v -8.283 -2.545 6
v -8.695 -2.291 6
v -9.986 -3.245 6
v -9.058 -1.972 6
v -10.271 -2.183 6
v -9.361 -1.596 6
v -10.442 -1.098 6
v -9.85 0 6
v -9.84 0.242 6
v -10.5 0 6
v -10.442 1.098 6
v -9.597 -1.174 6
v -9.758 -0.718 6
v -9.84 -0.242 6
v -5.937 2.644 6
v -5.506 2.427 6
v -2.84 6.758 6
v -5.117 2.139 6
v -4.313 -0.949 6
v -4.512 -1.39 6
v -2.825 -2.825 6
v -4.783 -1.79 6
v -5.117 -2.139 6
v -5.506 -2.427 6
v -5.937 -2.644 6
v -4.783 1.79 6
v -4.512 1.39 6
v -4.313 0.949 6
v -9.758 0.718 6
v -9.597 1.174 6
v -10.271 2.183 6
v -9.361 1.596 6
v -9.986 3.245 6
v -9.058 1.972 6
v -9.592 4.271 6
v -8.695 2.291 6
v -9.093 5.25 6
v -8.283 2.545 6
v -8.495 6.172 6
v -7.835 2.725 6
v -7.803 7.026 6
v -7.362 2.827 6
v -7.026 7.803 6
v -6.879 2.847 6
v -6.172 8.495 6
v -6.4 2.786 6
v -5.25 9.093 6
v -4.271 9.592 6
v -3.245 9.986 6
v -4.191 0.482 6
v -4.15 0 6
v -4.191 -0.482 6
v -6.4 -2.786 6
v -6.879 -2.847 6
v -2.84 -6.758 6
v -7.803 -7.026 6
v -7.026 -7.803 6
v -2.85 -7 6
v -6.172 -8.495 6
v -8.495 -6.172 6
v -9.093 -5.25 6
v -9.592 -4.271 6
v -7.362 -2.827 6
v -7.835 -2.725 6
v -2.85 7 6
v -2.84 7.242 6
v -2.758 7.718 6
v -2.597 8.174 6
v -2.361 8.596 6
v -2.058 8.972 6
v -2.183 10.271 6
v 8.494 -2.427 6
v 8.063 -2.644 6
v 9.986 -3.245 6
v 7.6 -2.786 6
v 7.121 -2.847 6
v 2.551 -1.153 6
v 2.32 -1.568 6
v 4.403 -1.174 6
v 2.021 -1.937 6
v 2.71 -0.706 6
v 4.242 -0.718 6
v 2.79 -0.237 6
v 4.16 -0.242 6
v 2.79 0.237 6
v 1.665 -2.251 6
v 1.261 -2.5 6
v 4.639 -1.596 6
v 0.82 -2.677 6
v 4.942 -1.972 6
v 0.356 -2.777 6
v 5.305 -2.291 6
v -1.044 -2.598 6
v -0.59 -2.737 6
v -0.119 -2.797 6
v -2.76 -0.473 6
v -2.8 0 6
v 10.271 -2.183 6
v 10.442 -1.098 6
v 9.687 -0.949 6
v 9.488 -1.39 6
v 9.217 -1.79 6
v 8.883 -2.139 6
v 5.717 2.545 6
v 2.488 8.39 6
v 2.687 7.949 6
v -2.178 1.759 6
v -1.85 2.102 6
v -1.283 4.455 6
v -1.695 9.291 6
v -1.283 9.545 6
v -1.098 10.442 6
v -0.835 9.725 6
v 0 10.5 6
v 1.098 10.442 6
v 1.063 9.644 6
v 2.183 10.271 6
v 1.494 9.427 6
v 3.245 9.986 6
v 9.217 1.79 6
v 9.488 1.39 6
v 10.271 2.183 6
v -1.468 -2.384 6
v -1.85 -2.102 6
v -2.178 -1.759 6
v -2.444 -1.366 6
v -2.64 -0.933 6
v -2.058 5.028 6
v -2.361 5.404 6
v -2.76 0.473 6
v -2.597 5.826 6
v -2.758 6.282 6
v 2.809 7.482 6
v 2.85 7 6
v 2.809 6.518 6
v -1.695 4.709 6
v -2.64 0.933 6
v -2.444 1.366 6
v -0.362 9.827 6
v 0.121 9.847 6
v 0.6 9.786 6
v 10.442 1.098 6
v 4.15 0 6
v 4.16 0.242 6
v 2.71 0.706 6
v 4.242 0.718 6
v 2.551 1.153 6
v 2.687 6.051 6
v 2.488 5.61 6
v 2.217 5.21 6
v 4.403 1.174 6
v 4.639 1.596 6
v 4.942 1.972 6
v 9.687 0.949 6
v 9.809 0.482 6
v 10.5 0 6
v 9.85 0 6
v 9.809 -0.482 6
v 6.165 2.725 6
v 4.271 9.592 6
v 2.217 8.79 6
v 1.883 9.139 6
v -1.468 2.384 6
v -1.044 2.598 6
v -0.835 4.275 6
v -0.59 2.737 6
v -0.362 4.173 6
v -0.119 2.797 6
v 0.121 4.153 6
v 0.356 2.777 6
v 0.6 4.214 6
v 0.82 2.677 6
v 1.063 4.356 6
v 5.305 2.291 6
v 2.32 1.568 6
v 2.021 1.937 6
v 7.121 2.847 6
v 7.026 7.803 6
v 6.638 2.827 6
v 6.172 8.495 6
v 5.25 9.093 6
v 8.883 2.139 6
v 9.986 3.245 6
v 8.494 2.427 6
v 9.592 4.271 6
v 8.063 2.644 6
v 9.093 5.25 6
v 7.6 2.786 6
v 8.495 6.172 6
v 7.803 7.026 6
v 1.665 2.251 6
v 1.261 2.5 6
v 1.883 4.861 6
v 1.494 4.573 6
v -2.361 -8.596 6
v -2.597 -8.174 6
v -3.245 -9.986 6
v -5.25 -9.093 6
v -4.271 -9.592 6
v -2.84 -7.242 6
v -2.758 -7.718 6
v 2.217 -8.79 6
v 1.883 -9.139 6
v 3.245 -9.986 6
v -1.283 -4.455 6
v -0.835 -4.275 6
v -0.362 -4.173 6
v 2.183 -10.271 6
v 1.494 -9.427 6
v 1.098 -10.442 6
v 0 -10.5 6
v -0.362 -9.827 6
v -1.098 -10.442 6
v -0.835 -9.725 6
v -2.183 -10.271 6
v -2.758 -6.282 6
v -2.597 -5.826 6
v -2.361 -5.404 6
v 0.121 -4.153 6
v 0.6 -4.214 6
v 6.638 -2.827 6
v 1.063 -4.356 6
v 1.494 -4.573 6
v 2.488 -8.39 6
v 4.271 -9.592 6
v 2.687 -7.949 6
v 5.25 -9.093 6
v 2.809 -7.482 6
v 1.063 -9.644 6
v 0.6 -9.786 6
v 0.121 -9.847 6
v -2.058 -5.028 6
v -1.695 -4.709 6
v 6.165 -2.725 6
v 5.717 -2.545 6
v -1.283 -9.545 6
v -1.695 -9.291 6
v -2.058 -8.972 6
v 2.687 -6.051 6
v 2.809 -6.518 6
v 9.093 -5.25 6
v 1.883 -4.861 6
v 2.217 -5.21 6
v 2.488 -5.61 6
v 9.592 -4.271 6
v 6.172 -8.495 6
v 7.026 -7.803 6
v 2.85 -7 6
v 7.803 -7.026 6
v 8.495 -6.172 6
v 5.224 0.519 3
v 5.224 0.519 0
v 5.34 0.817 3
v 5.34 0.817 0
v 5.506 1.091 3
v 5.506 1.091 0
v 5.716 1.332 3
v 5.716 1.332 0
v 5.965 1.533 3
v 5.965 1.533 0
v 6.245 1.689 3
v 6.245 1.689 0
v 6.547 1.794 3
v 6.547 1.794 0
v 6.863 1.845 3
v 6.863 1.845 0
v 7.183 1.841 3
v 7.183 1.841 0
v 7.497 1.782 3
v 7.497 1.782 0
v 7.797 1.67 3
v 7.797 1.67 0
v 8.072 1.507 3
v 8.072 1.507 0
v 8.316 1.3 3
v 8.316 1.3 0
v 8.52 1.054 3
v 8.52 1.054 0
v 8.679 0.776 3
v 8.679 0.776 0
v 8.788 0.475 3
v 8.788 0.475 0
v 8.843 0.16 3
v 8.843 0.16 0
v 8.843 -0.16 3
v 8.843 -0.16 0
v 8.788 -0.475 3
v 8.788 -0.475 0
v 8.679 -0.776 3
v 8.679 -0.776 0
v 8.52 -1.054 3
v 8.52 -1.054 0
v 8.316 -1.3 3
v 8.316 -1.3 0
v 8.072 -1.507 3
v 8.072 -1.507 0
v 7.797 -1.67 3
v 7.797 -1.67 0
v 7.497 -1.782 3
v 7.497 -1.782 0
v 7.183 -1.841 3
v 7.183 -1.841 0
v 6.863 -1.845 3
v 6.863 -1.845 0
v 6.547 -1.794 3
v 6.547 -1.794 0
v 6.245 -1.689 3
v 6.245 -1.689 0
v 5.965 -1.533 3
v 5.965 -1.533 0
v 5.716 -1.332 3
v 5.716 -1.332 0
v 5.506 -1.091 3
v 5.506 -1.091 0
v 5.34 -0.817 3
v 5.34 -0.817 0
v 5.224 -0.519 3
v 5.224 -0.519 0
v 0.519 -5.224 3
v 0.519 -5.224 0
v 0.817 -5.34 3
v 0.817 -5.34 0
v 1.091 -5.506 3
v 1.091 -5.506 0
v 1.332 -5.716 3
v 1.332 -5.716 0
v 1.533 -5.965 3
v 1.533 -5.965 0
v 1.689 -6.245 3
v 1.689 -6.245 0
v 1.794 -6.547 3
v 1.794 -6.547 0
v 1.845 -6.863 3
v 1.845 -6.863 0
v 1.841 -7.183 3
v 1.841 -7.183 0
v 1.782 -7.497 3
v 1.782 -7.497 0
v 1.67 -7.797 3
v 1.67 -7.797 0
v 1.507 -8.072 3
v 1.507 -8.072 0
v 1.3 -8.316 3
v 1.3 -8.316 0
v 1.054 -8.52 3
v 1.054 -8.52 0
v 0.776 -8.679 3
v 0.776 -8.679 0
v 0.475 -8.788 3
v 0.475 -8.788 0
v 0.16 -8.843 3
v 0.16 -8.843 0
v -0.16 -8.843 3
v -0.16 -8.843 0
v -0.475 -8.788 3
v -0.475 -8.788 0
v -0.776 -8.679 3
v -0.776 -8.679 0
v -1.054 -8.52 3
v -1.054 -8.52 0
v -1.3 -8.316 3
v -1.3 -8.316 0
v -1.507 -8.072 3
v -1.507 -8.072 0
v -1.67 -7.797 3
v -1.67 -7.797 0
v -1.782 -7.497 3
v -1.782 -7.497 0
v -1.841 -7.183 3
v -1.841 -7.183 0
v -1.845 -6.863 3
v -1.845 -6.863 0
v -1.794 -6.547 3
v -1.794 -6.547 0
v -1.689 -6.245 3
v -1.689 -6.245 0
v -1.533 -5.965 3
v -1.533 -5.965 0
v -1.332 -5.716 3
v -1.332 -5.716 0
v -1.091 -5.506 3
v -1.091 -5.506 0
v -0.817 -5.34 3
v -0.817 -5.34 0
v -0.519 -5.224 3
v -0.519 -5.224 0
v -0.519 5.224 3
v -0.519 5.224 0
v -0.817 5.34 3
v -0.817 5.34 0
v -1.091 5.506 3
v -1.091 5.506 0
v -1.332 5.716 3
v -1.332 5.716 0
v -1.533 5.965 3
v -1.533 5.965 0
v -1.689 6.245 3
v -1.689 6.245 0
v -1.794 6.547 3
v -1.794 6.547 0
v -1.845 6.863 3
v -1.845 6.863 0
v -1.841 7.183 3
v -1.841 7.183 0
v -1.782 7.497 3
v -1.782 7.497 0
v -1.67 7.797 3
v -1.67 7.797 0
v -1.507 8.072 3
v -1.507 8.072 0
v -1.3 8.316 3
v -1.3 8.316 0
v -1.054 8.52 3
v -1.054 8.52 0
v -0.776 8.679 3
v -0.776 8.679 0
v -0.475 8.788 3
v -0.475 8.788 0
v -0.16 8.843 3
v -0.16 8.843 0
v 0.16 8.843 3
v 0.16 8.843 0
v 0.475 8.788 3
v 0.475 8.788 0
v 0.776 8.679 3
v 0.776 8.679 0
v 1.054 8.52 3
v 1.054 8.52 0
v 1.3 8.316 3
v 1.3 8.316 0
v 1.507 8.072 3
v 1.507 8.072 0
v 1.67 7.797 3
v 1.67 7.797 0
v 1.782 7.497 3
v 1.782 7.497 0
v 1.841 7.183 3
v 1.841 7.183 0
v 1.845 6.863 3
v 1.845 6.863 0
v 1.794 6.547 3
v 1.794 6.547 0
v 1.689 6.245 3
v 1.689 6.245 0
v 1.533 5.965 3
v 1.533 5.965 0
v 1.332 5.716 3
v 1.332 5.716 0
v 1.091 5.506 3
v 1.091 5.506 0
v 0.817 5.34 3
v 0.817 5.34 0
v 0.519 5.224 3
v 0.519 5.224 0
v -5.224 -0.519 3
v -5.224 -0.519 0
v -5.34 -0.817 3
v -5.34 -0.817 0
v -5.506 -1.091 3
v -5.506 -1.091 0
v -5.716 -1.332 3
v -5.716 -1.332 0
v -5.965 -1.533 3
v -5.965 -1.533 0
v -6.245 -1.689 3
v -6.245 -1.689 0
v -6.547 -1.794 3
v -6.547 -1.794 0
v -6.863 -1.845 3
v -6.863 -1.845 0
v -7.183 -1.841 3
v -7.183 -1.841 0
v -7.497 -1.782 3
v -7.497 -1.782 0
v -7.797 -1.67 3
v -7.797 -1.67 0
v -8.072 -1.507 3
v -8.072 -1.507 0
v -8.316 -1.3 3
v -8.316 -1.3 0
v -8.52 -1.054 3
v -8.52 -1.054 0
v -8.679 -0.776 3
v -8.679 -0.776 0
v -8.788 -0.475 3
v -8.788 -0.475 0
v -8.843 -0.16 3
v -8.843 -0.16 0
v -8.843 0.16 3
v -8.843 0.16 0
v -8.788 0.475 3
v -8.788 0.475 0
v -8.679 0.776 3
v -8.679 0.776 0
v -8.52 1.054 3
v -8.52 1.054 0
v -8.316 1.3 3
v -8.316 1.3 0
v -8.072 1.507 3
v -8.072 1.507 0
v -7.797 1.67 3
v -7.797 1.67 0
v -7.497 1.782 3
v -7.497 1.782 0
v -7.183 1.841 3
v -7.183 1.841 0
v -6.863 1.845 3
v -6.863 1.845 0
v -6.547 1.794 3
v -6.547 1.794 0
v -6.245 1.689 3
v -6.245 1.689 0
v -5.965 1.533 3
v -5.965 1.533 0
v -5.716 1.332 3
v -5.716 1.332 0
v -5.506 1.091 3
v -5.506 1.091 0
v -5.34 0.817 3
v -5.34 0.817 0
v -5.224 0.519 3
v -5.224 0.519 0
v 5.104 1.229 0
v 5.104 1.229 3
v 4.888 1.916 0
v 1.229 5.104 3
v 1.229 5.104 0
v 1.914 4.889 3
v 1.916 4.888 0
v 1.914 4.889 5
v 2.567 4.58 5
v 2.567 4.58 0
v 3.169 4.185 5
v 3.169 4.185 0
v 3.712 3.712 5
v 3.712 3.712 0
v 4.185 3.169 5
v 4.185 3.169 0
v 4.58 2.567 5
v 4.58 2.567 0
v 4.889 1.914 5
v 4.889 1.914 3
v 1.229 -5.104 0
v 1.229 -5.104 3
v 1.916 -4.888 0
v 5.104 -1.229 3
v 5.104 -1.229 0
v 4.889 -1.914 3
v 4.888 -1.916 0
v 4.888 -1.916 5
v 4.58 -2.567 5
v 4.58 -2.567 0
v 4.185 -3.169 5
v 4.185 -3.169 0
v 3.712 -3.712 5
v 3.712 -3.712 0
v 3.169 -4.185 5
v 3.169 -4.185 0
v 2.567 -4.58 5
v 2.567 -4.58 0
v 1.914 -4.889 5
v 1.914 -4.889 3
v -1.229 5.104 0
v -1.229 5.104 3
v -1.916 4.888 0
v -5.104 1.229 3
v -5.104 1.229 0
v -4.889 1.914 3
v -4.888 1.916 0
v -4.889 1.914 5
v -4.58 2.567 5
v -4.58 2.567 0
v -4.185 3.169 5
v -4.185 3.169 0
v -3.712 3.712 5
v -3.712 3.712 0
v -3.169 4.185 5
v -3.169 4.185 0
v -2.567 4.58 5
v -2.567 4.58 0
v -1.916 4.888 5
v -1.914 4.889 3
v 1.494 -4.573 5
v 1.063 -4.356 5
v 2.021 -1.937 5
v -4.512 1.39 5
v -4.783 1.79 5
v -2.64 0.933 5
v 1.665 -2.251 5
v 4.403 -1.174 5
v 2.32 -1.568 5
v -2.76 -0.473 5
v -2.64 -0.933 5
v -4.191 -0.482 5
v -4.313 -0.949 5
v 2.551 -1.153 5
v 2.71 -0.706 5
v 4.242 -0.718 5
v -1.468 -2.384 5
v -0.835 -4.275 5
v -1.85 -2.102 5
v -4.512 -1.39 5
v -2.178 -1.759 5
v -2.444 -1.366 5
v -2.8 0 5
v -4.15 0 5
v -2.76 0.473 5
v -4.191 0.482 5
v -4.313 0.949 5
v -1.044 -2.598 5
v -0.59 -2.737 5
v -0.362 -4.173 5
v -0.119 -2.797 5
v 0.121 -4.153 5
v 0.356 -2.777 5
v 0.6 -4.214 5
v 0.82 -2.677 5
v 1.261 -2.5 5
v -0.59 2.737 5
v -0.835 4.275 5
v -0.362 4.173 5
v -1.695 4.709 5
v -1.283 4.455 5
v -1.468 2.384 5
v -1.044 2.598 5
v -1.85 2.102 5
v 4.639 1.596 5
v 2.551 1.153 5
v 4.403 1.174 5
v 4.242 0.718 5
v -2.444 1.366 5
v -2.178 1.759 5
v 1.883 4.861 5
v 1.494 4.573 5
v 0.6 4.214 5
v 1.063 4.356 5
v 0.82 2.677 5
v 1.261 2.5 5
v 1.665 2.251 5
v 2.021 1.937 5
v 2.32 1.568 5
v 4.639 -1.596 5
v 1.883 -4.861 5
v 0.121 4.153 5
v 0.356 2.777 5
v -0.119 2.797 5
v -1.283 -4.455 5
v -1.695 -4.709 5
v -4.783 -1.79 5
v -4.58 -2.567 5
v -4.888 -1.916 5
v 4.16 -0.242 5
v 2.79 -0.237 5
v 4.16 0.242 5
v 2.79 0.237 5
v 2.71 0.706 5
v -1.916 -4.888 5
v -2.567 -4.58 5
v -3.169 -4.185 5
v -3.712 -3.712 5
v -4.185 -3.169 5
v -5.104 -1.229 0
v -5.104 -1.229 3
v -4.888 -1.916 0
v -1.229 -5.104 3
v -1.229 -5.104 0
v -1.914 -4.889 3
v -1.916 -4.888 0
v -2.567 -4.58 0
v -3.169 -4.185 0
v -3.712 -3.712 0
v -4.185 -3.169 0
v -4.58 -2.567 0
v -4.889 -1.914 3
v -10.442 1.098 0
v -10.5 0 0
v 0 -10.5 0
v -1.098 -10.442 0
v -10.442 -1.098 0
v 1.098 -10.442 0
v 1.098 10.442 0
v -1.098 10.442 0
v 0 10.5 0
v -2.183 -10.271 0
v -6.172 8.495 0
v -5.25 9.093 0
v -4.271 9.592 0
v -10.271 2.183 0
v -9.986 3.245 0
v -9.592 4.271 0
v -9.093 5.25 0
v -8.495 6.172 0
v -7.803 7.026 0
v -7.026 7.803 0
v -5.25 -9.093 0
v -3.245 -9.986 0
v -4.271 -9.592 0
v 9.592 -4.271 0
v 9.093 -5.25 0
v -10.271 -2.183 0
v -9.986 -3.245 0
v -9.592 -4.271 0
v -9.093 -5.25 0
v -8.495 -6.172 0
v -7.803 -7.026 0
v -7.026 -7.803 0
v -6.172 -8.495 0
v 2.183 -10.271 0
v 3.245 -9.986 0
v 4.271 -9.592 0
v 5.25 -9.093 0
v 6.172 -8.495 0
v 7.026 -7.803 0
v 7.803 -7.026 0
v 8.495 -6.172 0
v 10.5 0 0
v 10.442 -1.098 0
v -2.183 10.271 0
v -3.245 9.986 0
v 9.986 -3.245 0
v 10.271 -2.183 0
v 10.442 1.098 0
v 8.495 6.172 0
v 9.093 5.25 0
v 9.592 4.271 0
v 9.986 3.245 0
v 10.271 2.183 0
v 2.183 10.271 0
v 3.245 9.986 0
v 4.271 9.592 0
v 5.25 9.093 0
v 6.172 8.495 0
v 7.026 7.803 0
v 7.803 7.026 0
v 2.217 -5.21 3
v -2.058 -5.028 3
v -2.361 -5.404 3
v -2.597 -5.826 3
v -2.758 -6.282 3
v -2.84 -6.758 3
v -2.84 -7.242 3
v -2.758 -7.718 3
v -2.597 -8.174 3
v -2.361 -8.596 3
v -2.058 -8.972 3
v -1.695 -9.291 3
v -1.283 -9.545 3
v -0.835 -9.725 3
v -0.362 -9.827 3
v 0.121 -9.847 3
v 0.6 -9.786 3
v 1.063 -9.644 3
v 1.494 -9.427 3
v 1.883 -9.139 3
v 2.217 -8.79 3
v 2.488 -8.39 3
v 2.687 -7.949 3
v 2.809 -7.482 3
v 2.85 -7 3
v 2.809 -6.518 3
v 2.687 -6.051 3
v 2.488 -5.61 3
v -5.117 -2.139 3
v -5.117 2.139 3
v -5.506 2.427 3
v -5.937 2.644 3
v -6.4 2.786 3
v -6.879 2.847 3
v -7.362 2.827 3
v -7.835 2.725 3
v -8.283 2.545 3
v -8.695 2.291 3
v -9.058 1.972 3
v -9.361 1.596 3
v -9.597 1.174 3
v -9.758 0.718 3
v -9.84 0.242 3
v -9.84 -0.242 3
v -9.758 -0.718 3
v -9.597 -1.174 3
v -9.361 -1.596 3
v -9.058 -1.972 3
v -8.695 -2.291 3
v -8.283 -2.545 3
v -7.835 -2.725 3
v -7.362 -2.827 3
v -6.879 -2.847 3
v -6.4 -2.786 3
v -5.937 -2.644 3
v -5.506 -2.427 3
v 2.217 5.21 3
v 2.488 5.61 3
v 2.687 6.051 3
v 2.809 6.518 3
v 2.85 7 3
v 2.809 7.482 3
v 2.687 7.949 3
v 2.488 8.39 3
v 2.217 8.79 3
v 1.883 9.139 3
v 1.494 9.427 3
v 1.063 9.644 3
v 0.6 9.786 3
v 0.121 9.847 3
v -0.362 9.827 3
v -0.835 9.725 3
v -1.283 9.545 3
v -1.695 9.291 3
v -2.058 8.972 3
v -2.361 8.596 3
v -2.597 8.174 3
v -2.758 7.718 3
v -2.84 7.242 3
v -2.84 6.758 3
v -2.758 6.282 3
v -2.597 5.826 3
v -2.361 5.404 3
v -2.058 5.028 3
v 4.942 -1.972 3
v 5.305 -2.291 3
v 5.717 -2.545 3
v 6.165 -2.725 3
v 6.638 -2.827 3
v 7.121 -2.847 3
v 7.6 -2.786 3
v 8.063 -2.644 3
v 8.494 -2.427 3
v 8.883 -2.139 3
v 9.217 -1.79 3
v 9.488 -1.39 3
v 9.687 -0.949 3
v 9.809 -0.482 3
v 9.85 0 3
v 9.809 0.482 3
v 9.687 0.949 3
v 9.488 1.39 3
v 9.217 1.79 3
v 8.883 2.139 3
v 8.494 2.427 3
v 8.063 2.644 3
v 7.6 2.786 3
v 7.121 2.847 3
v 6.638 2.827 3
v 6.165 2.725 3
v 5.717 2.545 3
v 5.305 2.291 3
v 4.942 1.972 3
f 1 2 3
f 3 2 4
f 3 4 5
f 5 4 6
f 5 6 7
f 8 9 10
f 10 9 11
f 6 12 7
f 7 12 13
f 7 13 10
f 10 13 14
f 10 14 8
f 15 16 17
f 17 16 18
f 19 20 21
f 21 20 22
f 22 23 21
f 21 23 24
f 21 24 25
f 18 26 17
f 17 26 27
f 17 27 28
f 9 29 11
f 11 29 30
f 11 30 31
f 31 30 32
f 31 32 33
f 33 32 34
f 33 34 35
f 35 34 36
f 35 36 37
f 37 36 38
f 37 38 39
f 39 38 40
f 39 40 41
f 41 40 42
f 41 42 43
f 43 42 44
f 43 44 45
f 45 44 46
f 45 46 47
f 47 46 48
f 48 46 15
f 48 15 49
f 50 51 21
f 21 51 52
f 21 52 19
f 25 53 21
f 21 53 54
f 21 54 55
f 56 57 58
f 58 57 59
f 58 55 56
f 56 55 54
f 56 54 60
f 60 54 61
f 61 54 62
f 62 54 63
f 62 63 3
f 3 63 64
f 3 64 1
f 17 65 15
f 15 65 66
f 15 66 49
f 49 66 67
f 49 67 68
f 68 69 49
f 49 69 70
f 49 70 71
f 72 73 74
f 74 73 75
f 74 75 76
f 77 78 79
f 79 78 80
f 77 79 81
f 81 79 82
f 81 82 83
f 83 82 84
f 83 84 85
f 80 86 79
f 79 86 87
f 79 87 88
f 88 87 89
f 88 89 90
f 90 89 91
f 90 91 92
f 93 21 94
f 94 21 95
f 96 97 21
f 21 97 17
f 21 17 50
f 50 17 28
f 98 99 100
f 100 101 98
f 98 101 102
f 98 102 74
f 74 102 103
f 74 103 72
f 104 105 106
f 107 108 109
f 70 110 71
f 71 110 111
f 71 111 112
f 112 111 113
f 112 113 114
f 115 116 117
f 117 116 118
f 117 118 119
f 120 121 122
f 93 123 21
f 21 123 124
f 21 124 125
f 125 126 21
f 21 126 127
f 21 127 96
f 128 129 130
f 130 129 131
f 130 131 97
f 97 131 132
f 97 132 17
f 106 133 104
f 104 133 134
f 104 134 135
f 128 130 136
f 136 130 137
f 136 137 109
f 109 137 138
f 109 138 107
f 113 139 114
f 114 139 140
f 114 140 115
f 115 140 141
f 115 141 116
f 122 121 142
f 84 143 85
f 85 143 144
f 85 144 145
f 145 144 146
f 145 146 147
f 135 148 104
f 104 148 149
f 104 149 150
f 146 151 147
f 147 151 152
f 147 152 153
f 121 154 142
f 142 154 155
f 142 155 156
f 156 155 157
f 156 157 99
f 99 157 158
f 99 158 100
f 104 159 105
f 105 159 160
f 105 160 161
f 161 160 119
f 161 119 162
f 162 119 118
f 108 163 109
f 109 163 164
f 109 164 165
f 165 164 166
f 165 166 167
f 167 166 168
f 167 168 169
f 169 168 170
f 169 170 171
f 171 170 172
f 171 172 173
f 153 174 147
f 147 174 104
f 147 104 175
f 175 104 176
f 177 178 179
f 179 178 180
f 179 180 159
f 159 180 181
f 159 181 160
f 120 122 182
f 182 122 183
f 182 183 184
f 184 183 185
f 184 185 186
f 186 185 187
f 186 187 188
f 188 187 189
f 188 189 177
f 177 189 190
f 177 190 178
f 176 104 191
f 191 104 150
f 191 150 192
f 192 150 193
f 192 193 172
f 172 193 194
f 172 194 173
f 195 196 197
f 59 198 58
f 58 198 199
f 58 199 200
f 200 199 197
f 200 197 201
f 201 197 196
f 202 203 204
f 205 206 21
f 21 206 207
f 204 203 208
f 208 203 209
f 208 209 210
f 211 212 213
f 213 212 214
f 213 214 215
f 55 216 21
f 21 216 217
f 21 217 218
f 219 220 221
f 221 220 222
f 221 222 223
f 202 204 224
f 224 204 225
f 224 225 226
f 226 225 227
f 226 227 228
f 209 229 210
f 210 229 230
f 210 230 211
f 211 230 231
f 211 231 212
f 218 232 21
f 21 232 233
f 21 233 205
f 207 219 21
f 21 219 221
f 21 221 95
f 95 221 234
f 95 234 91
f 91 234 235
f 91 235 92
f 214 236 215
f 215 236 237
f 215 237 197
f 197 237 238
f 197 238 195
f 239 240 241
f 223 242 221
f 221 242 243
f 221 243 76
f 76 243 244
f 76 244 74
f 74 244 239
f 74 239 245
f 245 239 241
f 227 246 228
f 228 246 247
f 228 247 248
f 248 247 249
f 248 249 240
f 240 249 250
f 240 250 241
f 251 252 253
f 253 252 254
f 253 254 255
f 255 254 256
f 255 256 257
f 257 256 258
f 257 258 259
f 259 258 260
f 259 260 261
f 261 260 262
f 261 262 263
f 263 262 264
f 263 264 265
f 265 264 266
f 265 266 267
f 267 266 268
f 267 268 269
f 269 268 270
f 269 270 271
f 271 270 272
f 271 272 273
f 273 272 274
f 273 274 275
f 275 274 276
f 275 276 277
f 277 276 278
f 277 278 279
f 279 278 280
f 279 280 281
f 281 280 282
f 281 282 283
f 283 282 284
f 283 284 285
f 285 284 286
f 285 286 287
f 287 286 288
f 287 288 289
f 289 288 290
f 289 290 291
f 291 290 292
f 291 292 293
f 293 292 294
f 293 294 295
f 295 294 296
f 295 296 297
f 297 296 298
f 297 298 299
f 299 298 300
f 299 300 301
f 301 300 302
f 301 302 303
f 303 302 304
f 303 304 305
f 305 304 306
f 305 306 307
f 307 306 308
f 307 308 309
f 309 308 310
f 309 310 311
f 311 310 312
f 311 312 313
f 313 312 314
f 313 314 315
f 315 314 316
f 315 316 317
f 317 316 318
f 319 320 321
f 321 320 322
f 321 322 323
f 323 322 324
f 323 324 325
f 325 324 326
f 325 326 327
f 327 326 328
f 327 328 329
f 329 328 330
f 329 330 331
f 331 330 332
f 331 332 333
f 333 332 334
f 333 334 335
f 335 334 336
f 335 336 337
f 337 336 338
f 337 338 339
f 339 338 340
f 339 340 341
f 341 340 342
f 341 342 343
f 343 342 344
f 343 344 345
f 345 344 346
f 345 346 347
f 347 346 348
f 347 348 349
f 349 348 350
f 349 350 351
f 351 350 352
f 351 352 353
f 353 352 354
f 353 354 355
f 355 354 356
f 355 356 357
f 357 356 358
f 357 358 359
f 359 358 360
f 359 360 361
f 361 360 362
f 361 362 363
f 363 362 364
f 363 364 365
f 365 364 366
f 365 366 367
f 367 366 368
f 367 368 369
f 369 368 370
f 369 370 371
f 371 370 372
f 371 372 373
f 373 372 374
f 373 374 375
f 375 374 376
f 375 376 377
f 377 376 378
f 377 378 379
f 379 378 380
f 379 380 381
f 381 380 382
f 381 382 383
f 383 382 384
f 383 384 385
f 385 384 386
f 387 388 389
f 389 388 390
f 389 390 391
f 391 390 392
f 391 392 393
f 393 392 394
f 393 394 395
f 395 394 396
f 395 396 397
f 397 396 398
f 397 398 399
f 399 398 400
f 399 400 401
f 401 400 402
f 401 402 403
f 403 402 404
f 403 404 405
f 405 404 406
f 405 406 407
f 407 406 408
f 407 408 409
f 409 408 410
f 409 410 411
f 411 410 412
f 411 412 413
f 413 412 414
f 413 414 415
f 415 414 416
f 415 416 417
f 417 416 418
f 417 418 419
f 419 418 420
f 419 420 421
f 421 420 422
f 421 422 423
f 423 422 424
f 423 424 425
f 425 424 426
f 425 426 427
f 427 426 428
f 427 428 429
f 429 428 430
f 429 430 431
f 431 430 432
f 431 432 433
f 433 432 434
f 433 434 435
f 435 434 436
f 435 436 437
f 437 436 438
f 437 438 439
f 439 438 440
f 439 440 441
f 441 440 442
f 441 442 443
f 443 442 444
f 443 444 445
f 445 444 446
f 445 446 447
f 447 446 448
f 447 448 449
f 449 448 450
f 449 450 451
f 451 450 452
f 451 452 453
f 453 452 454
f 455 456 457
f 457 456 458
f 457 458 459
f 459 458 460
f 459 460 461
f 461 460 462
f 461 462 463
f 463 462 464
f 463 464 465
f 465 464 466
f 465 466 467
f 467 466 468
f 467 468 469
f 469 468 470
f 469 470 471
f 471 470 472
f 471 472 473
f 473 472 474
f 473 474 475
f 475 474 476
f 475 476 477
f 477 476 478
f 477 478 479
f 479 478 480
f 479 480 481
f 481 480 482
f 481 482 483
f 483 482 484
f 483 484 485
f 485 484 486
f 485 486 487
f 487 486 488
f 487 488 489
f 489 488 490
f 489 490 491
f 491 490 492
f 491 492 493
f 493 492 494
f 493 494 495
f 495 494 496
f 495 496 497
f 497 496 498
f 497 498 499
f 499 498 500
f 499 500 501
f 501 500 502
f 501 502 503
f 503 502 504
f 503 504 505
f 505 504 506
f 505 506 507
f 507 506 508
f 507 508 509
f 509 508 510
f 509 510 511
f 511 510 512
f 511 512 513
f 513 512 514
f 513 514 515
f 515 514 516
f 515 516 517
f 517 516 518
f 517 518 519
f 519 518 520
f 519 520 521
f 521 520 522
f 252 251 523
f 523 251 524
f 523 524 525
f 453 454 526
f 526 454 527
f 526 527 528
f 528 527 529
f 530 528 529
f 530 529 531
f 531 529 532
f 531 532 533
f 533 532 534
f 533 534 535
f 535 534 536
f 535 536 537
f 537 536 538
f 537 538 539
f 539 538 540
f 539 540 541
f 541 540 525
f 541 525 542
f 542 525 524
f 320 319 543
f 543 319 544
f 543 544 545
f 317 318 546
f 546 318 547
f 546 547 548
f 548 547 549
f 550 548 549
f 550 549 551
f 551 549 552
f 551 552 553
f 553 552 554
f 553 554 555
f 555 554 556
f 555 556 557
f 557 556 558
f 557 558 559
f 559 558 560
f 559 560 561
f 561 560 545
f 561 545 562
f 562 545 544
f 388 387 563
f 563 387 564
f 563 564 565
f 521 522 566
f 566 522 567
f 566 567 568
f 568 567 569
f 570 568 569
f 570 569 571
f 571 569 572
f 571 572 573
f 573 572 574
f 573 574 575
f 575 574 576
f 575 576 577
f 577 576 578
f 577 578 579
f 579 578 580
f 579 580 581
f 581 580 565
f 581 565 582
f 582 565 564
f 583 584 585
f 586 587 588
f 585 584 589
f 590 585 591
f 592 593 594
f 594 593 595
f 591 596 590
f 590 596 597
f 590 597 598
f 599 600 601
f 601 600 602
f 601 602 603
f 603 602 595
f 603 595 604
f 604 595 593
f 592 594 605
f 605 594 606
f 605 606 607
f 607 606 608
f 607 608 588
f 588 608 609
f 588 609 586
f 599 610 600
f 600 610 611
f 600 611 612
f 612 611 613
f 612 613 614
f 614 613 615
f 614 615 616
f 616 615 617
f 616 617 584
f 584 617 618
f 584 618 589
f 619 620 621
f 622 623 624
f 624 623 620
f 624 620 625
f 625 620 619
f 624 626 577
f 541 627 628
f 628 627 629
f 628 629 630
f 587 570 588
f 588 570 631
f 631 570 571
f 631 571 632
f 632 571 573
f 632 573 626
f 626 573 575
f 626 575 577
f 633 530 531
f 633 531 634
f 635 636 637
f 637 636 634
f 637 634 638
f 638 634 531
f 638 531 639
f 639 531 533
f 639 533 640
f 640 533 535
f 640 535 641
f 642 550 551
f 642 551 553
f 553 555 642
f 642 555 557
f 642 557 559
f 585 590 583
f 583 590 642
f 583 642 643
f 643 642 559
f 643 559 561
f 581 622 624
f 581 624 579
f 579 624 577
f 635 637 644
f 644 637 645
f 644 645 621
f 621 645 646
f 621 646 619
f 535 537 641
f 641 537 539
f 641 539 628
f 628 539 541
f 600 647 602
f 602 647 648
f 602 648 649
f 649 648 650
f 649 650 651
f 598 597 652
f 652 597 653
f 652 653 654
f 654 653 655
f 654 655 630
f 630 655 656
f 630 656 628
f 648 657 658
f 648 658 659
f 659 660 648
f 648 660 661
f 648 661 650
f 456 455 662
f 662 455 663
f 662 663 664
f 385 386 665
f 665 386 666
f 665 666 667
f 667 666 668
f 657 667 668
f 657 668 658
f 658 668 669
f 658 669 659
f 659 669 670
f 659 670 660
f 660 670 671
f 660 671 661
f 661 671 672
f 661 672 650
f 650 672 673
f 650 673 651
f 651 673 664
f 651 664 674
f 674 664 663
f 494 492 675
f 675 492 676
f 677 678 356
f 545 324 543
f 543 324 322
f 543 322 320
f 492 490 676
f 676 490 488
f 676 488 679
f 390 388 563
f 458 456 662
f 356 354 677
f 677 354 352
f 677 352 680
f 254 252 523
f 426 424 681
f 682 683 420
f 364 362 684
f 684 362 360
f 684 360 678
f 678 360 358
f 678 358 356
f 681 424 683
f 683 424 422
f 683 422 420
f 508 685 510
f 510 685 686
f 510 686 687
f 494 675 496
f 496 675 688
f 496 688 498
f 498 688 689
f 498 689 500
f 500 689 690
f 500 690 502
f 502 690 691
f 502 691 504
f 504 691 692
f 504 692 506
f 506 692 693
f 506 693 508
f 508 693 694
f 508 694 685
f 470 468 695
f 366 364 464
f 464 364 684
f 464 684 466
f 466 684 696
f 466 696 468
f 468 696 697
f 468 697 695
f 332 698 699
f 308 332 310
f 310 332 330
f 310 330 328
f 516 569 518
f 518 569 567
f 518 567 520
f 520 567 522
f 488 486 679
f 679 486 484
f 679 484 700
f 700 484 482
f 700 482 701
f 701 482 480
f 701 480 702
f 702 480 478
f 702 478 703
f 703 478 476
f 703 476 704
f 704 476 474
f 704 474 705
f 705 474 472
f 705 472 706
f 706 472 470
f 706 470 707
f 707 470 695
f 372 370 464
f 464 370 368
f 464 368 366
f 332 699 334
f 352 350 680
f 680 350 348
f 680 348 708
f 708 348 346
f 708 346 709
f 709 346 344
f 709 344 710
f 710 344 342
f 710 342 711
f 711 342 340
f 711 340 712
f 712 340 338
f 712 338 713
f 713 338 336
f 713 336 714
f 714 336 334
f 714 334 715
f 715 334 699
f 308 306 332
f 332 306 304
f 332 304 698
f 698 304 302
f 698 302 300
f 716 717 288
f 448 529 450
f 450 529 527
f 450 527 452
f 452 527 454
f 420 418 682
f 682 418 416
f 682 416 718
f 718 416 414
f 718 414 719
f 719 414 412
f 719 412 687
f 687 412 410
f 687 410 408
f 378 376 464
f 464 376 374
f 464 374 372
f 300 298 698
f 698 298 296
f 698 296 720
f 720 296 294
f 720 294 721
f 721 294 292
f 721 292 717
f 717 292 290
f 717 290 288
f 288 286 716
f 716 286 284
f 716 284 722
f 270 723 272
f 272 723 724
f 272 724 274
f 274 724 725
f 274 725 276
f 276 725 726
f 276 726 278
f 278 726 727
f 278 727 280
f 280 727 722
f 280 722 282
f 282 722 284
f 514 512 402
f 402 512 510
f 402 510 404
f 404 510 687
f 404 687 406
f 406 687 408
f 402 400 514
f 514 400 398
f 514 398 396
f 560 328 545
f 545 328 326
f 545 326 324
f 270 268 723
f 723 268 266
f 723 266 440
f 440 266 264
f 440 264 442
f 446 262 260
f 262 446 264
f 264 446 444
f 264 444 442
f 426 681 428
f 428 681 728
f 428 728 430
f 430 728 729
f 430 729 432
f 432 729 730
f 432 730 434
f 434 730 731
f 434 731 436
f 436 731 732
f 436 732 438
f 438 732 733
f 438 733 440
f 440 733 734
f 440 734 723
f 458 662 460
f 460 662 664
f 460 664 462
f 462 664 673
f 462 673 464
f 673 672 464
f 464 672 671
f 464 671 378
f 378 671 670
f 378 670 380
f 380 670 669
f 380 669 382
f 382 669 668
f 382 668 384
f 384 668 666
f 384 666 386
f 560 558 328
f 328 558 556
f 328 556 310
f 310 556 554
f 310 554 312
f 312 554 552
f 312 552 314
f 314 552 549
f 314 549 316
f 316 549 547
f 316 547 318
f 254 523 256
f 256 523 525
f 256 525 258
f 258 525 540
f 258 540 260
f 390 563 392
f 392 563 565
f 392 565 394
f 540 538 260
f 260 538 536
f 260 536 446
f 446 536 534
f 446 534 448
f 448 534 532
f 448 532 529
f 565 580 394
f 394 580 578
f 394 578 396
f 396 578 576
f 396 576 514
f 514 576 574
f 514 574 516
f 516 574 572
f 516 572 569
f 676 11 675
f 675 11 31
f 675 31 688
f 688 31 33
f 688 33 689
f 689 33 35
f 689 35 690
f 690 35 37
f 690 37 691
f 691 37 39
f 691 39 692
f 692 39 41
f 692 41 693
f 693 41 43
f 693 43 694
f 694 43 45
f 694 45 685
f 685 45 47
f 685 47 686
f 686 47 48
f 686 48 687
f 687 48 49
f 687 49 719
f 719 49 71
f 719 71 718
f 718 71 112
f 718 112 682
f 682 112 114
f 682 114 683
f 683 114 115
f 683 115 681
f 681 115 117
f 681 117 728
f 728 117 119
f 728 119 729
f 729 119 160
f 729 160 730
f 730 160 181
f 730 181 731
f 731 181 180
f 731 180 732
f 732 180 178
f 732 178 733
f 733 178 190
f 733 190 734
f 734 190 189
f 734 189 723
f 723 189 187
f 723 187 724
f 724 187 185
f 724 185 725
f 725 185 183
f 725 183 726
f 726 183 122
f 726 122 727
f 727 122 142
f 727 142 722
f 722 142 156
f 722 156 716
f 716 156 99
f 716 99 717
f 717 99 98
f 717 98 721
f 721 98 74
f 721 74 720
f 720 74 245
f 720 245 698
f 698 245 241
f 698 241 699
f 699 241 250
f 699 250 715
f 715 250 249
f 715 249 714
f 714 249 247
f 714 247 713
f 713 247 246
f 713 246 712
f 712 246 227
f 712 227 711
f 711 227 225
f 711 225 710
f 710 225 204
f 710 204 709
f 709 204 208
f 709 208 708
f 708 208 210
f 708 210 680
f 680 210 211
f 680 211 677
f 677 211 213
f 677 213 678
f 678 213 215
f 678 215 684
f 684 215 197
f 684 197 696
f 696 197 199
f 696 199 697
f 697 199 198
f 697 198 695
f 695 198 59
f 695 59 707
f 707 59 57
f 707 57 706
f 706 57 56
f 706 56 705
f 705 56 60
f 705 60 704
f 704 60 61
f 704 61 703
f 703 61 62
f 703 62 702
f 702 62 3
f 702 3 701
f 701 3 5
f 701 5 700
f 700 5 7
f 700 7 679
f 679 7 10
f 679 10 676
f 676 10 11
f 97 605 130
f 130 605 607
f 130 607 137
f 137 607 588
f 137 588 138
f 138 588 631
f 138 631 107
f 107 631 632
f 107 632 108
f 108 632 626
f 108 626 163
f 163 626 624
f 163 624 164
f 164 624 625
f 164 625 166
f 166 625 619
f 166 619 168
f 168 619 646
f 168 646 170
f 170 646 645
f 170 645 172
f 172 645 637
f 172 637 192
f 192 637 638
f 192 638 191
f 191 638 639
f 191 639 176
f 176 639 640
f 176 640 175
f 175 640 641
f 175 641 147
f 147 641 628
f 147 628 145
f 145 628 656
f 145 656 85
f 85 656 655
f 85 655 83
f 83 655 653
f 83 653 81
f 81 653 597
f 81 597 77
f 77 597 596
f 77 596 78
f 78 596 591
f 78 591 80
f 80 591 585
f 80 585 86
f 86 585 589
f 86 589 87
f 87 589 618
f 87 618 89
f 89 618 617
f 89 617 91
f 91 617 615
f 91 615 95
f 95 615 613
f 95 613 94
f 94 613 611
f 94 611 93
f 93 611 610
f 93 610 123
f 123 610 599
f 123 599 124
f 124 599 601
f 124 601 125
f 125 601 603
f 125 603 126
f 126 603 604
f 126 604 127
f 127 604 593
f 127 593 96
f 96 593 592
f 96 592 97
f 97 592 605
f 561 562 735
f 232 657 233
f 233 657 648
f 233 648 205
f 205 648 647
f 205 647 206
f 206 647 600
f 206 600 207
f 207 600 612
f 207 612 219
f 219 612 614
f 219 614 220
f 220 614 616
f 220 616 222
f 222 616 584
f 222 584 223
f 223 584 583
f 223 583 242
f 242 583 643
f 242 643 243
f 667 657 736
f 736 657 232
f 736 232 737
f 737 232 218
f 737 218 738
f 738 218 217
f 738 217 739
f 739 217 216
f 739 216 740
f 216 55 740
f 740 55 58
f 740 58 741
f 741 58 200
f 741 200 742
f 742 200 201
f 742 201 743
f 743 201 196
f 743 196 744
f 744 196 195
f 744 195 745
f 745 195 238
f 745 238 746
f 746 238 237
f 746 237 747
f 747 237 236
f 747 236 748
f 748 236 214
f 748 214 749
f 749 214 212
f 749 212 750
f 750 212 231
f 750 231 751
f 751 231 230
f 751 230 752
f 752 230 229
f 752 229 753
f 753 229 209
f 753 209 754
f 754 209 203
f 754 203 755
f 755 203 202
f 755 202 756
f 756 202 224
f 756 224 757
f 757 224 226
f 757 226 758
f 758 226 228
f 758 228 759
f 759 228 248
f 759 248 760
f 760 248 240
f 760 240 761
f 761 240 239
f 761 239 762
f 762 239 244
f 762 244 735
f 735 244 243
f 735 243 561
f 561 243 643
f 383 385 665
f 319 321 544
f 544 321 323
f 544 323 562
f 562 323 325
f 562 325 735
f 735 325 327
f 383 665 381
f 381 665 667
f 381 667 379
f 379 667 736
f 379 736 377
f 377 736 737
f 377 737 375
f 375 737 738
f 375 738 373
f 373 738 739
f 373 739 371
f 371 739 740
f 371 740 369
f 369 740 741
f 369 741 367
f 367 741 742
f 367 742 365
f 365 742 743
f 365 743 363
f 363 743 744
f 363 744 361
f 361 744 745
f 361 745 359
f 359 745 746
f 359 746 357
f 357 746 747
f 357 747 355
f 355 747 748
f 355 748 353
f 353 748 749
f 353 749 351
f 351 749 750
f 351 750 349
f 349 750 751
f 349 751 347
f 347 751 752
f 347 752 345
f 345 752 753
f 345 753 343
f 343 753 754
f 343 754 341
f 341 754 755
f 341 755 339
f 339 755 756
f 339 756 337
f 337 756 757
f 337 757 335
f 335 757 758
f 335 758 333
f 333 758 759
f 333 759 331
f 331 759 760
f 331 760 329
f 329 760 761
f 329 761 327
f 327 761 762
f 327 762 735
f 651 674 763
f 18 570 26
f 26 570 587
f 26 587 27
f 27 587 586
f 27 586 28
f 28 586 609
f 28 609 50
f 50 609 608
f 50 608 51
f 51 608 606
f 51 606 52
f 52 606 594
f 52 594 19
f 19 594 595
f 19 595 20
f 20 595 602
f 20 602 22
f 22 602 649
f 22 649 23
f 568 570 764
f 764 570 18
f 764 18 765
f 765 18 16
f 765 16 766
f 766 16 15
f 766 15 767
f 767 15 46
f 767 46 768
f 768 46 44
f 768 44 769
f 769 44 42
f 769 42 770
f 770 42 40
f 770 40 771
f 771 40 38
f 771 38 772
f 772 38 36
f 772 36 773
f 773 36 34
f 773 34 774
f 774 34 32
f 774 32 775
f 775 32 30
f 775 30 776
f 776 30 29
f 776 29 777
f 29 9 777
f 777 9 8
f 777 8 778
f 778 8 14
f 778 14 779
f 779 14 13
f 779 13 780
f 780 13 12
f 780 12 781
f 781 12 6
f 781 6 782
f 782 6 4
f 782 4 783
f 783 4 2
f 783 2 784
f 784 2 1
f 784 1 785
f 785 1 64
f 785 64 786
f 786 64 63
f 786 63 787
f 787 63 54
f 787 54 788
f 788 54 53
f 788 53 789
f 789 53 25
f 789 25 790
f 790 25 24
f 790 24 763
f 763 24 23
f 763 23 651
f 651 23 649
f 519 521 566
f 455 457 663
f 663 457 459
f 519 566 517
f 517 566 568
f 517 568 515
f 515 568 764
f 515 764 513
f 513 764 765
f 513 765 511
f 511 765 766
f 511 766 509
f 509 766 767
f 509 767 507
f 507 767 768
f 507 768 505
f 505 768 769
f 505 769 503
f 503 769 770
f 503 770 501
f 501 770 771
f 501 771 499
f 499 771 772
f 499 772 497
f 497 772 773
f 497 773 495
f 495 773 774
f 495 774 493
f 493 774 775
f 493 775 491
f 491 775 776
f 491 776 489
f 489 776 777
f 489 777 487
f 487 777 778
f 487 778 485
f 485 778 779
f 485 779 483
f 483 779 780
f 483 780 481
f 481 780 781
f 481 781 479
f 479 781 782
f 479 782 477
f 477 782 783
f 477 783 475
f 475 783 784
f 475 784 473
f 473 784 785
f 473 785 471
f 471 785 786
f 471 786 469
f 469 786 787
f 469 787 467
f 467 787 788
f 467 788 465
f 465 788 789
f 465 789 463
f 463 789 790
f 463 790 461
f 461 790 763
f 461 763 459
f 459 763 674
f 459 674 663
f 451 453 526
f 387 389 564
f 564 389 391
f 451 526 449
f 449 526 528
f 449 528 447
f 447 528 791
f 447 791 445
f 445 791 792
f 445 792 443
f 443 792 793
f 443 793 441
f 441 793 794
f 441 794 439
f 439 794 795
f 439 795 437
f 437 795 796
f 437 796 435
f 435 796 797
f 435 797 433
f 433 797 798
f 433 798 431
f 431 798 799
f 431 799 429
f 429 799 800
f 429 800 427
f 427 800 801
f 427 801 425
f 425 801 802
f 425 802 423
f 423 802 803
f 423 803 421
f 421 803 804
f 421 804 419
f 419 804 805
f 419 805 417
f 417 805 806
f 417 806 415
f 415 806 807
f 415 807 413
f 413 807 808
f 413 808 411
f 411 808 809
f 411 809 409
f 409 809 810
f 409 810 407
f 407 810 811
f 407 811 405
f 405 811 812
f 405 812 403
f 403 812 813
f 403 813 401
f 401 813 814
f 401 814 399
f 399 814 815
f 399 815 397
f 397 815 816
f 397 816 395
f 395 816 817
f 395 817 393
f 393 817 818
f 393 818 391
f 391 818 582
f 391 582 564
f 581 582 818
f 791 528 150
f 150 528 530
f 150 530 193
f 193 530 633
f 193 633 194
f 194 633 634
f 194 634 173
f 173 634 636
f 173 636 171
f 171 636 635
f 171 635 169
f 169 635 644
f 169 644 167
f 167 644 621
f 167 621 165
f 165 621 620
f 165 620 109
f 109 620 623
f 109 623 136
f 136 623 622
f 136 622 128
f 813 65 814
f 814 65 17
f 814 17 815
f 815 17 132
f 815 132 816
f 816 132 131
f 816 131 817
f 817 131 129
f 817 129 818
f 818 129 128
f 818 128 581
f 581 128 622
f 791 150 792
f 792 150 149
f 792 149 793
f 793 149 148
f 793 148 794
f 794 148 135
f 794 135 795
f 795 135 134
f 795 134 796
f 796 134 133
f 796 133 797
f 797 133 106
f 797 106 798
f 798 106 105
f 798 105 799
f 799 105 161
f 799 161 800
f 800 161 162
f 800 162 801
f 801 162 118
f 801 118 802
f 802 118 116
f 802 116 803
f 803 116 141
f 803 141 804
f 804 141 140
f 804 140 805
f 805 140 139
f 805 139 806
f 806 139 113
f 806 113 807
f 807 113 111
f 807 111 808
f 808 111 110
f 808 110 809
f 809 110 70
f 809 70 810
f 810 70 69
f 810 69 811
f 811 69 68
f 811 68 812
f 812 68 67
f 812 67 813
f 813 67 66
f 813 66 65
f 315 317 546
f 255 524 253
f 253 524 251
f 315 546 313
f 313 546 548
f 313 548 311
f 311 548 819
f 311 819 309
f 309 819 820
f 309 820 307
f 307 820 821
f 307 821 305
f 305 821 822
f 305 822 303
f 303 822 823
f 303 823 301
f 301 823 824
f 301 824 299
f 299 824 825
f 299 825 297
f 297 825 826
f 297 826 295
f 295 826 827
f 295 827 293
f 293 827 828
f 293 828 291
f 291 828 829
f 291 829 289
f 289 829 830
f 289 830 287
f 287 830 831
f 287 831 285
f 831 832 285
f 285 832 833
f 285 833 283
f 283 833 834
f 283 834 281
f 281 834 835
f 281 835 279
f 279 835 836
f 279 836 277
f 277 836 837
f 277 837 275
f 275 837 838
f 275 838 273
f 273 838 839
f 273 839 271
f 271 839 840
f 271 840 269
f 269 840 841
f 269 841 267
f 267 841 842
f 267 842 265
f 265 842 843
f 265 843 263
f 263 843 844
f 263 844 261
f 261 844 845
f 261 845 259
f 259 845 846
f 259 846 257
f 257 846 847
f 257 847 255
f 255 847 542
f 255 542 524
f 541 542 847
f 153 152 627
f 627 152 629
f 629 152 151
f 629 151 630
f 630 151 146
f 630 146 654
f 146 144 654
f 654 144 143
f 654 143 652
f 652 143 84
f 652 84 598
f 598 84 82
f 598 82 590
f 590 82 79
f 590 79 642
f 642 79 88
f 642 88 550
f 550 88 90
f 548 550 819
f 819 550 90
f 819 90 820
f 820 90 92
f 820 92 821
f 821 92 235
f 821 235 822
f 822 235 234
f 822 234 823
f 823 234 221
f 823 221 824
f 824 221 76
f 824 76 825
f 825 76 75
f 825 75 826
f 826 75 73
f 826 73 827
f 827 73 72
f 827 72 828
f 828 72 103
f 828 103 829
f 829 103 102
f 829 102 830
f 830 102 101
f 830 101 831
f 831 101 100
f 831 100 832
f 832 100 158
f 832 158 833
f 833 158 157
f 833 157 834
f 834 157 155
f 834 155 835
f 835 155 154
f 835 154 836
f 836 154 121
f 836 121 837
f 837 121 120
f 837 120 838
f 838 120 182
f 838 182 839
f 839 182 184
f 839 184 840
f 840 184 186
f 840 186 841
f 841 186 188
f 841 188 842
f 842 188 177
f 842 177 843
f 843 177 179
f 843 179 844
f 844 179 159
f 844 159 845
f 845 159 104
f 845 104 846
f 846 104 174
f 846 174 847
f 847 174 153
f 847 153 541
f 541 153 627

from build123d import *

# Parameters (mm, degrees)
SKETCH1_R           = 10.5
SKETCH1_R_2         = 1.85
BOSS_EXTRUDE1_DEPTH = 6
SKETCH2_R           = 5.25
CUT_EXTRUDE1_DEPTH  = 5
SKETCH3_R           = 2.8
CUT_EXTRUDE2_DEPTH  = 2
SKETCH5_R           = 2.85
SKETCH5_R_2         = 1.85
CUT_EXTRUDE4_DEPTH  = 3


with BuildPart() as part:
    # Sketch1 → Boss-Extrude1 (new body)
    with BuildSketch(Plane.XY):
        Circle(SKETCH1_R)
        with Locations((7, 0)):
            Circle(SKETCH1_R_2, mode=Mode.SUBTRACT)
        with Locations((0, -7)):
            Circle(SKETCH1_R_2, mode=Mode.SUBTRACT)
        with Locations((-7, 0)):
            Circle(SKETCH1_R_2, mode=Mode.SUBTRACT)
        with Locations((0, 7)):
            Circle(SKETCH1_R_2, mode=Mode.SUBTRACT)
    extrude(amount=BOSS_EXTRUDE1_DEPTH)

    # Sketch2 → Cut-Extrude1 (cut)
    with BuildSketch(Plane(origin=(0, 0, 0), x_dir=(-1, 0, 0), z_dir=(0, 0, -1))):
        Circle(SKETCH2_R)
    extrude(amount=-CUT_EXTRUDE1_DEPTH, mode=Mode.SUBTRACT)

    # Sketch3 → Cut-Extrude2 (cut, through all)
    with BuildSketch(Plane(origin=(0, 0, 5), x_dir=(-1, 0, 0), z_dir=(0, 0, -1))):
        Circle(SKETCH3_R)
    extrude(amount=-CUT_EXTRUDE2_DEPTH, mode=Mode.SUBTRACT)

    # Sketch5 → Cut-Extrude4 (cut)
    with BuildSketch(Plane(origin=(0, 0, 6), x_dir=(-1, 0, 0), z_dir=(0, 0, -1))):
        with Locations((0, 7)):
            Circle(SKETCH5_R)
        with Locations((0, 7)):
            Circle(SKETCH5_R_2, mode=Mode.SUBTRACT)
        with Locations((7, 0)):
            Circle(SKETCH5_R)
        with Locations((0, -7)):
            Circle(SKETCH5_R)
        with Locations((-7, 0)):
            Circle(SKETCH5_R)
        with Locations((-7, 0)):
            Circle(SKETCH5_R_2, mode=Mode.SUBTRACT)
    extrude(amount=CUT_EXTRUDE4_DEPTH, mode=Mode.SUBTRACT)


solid = part.part
